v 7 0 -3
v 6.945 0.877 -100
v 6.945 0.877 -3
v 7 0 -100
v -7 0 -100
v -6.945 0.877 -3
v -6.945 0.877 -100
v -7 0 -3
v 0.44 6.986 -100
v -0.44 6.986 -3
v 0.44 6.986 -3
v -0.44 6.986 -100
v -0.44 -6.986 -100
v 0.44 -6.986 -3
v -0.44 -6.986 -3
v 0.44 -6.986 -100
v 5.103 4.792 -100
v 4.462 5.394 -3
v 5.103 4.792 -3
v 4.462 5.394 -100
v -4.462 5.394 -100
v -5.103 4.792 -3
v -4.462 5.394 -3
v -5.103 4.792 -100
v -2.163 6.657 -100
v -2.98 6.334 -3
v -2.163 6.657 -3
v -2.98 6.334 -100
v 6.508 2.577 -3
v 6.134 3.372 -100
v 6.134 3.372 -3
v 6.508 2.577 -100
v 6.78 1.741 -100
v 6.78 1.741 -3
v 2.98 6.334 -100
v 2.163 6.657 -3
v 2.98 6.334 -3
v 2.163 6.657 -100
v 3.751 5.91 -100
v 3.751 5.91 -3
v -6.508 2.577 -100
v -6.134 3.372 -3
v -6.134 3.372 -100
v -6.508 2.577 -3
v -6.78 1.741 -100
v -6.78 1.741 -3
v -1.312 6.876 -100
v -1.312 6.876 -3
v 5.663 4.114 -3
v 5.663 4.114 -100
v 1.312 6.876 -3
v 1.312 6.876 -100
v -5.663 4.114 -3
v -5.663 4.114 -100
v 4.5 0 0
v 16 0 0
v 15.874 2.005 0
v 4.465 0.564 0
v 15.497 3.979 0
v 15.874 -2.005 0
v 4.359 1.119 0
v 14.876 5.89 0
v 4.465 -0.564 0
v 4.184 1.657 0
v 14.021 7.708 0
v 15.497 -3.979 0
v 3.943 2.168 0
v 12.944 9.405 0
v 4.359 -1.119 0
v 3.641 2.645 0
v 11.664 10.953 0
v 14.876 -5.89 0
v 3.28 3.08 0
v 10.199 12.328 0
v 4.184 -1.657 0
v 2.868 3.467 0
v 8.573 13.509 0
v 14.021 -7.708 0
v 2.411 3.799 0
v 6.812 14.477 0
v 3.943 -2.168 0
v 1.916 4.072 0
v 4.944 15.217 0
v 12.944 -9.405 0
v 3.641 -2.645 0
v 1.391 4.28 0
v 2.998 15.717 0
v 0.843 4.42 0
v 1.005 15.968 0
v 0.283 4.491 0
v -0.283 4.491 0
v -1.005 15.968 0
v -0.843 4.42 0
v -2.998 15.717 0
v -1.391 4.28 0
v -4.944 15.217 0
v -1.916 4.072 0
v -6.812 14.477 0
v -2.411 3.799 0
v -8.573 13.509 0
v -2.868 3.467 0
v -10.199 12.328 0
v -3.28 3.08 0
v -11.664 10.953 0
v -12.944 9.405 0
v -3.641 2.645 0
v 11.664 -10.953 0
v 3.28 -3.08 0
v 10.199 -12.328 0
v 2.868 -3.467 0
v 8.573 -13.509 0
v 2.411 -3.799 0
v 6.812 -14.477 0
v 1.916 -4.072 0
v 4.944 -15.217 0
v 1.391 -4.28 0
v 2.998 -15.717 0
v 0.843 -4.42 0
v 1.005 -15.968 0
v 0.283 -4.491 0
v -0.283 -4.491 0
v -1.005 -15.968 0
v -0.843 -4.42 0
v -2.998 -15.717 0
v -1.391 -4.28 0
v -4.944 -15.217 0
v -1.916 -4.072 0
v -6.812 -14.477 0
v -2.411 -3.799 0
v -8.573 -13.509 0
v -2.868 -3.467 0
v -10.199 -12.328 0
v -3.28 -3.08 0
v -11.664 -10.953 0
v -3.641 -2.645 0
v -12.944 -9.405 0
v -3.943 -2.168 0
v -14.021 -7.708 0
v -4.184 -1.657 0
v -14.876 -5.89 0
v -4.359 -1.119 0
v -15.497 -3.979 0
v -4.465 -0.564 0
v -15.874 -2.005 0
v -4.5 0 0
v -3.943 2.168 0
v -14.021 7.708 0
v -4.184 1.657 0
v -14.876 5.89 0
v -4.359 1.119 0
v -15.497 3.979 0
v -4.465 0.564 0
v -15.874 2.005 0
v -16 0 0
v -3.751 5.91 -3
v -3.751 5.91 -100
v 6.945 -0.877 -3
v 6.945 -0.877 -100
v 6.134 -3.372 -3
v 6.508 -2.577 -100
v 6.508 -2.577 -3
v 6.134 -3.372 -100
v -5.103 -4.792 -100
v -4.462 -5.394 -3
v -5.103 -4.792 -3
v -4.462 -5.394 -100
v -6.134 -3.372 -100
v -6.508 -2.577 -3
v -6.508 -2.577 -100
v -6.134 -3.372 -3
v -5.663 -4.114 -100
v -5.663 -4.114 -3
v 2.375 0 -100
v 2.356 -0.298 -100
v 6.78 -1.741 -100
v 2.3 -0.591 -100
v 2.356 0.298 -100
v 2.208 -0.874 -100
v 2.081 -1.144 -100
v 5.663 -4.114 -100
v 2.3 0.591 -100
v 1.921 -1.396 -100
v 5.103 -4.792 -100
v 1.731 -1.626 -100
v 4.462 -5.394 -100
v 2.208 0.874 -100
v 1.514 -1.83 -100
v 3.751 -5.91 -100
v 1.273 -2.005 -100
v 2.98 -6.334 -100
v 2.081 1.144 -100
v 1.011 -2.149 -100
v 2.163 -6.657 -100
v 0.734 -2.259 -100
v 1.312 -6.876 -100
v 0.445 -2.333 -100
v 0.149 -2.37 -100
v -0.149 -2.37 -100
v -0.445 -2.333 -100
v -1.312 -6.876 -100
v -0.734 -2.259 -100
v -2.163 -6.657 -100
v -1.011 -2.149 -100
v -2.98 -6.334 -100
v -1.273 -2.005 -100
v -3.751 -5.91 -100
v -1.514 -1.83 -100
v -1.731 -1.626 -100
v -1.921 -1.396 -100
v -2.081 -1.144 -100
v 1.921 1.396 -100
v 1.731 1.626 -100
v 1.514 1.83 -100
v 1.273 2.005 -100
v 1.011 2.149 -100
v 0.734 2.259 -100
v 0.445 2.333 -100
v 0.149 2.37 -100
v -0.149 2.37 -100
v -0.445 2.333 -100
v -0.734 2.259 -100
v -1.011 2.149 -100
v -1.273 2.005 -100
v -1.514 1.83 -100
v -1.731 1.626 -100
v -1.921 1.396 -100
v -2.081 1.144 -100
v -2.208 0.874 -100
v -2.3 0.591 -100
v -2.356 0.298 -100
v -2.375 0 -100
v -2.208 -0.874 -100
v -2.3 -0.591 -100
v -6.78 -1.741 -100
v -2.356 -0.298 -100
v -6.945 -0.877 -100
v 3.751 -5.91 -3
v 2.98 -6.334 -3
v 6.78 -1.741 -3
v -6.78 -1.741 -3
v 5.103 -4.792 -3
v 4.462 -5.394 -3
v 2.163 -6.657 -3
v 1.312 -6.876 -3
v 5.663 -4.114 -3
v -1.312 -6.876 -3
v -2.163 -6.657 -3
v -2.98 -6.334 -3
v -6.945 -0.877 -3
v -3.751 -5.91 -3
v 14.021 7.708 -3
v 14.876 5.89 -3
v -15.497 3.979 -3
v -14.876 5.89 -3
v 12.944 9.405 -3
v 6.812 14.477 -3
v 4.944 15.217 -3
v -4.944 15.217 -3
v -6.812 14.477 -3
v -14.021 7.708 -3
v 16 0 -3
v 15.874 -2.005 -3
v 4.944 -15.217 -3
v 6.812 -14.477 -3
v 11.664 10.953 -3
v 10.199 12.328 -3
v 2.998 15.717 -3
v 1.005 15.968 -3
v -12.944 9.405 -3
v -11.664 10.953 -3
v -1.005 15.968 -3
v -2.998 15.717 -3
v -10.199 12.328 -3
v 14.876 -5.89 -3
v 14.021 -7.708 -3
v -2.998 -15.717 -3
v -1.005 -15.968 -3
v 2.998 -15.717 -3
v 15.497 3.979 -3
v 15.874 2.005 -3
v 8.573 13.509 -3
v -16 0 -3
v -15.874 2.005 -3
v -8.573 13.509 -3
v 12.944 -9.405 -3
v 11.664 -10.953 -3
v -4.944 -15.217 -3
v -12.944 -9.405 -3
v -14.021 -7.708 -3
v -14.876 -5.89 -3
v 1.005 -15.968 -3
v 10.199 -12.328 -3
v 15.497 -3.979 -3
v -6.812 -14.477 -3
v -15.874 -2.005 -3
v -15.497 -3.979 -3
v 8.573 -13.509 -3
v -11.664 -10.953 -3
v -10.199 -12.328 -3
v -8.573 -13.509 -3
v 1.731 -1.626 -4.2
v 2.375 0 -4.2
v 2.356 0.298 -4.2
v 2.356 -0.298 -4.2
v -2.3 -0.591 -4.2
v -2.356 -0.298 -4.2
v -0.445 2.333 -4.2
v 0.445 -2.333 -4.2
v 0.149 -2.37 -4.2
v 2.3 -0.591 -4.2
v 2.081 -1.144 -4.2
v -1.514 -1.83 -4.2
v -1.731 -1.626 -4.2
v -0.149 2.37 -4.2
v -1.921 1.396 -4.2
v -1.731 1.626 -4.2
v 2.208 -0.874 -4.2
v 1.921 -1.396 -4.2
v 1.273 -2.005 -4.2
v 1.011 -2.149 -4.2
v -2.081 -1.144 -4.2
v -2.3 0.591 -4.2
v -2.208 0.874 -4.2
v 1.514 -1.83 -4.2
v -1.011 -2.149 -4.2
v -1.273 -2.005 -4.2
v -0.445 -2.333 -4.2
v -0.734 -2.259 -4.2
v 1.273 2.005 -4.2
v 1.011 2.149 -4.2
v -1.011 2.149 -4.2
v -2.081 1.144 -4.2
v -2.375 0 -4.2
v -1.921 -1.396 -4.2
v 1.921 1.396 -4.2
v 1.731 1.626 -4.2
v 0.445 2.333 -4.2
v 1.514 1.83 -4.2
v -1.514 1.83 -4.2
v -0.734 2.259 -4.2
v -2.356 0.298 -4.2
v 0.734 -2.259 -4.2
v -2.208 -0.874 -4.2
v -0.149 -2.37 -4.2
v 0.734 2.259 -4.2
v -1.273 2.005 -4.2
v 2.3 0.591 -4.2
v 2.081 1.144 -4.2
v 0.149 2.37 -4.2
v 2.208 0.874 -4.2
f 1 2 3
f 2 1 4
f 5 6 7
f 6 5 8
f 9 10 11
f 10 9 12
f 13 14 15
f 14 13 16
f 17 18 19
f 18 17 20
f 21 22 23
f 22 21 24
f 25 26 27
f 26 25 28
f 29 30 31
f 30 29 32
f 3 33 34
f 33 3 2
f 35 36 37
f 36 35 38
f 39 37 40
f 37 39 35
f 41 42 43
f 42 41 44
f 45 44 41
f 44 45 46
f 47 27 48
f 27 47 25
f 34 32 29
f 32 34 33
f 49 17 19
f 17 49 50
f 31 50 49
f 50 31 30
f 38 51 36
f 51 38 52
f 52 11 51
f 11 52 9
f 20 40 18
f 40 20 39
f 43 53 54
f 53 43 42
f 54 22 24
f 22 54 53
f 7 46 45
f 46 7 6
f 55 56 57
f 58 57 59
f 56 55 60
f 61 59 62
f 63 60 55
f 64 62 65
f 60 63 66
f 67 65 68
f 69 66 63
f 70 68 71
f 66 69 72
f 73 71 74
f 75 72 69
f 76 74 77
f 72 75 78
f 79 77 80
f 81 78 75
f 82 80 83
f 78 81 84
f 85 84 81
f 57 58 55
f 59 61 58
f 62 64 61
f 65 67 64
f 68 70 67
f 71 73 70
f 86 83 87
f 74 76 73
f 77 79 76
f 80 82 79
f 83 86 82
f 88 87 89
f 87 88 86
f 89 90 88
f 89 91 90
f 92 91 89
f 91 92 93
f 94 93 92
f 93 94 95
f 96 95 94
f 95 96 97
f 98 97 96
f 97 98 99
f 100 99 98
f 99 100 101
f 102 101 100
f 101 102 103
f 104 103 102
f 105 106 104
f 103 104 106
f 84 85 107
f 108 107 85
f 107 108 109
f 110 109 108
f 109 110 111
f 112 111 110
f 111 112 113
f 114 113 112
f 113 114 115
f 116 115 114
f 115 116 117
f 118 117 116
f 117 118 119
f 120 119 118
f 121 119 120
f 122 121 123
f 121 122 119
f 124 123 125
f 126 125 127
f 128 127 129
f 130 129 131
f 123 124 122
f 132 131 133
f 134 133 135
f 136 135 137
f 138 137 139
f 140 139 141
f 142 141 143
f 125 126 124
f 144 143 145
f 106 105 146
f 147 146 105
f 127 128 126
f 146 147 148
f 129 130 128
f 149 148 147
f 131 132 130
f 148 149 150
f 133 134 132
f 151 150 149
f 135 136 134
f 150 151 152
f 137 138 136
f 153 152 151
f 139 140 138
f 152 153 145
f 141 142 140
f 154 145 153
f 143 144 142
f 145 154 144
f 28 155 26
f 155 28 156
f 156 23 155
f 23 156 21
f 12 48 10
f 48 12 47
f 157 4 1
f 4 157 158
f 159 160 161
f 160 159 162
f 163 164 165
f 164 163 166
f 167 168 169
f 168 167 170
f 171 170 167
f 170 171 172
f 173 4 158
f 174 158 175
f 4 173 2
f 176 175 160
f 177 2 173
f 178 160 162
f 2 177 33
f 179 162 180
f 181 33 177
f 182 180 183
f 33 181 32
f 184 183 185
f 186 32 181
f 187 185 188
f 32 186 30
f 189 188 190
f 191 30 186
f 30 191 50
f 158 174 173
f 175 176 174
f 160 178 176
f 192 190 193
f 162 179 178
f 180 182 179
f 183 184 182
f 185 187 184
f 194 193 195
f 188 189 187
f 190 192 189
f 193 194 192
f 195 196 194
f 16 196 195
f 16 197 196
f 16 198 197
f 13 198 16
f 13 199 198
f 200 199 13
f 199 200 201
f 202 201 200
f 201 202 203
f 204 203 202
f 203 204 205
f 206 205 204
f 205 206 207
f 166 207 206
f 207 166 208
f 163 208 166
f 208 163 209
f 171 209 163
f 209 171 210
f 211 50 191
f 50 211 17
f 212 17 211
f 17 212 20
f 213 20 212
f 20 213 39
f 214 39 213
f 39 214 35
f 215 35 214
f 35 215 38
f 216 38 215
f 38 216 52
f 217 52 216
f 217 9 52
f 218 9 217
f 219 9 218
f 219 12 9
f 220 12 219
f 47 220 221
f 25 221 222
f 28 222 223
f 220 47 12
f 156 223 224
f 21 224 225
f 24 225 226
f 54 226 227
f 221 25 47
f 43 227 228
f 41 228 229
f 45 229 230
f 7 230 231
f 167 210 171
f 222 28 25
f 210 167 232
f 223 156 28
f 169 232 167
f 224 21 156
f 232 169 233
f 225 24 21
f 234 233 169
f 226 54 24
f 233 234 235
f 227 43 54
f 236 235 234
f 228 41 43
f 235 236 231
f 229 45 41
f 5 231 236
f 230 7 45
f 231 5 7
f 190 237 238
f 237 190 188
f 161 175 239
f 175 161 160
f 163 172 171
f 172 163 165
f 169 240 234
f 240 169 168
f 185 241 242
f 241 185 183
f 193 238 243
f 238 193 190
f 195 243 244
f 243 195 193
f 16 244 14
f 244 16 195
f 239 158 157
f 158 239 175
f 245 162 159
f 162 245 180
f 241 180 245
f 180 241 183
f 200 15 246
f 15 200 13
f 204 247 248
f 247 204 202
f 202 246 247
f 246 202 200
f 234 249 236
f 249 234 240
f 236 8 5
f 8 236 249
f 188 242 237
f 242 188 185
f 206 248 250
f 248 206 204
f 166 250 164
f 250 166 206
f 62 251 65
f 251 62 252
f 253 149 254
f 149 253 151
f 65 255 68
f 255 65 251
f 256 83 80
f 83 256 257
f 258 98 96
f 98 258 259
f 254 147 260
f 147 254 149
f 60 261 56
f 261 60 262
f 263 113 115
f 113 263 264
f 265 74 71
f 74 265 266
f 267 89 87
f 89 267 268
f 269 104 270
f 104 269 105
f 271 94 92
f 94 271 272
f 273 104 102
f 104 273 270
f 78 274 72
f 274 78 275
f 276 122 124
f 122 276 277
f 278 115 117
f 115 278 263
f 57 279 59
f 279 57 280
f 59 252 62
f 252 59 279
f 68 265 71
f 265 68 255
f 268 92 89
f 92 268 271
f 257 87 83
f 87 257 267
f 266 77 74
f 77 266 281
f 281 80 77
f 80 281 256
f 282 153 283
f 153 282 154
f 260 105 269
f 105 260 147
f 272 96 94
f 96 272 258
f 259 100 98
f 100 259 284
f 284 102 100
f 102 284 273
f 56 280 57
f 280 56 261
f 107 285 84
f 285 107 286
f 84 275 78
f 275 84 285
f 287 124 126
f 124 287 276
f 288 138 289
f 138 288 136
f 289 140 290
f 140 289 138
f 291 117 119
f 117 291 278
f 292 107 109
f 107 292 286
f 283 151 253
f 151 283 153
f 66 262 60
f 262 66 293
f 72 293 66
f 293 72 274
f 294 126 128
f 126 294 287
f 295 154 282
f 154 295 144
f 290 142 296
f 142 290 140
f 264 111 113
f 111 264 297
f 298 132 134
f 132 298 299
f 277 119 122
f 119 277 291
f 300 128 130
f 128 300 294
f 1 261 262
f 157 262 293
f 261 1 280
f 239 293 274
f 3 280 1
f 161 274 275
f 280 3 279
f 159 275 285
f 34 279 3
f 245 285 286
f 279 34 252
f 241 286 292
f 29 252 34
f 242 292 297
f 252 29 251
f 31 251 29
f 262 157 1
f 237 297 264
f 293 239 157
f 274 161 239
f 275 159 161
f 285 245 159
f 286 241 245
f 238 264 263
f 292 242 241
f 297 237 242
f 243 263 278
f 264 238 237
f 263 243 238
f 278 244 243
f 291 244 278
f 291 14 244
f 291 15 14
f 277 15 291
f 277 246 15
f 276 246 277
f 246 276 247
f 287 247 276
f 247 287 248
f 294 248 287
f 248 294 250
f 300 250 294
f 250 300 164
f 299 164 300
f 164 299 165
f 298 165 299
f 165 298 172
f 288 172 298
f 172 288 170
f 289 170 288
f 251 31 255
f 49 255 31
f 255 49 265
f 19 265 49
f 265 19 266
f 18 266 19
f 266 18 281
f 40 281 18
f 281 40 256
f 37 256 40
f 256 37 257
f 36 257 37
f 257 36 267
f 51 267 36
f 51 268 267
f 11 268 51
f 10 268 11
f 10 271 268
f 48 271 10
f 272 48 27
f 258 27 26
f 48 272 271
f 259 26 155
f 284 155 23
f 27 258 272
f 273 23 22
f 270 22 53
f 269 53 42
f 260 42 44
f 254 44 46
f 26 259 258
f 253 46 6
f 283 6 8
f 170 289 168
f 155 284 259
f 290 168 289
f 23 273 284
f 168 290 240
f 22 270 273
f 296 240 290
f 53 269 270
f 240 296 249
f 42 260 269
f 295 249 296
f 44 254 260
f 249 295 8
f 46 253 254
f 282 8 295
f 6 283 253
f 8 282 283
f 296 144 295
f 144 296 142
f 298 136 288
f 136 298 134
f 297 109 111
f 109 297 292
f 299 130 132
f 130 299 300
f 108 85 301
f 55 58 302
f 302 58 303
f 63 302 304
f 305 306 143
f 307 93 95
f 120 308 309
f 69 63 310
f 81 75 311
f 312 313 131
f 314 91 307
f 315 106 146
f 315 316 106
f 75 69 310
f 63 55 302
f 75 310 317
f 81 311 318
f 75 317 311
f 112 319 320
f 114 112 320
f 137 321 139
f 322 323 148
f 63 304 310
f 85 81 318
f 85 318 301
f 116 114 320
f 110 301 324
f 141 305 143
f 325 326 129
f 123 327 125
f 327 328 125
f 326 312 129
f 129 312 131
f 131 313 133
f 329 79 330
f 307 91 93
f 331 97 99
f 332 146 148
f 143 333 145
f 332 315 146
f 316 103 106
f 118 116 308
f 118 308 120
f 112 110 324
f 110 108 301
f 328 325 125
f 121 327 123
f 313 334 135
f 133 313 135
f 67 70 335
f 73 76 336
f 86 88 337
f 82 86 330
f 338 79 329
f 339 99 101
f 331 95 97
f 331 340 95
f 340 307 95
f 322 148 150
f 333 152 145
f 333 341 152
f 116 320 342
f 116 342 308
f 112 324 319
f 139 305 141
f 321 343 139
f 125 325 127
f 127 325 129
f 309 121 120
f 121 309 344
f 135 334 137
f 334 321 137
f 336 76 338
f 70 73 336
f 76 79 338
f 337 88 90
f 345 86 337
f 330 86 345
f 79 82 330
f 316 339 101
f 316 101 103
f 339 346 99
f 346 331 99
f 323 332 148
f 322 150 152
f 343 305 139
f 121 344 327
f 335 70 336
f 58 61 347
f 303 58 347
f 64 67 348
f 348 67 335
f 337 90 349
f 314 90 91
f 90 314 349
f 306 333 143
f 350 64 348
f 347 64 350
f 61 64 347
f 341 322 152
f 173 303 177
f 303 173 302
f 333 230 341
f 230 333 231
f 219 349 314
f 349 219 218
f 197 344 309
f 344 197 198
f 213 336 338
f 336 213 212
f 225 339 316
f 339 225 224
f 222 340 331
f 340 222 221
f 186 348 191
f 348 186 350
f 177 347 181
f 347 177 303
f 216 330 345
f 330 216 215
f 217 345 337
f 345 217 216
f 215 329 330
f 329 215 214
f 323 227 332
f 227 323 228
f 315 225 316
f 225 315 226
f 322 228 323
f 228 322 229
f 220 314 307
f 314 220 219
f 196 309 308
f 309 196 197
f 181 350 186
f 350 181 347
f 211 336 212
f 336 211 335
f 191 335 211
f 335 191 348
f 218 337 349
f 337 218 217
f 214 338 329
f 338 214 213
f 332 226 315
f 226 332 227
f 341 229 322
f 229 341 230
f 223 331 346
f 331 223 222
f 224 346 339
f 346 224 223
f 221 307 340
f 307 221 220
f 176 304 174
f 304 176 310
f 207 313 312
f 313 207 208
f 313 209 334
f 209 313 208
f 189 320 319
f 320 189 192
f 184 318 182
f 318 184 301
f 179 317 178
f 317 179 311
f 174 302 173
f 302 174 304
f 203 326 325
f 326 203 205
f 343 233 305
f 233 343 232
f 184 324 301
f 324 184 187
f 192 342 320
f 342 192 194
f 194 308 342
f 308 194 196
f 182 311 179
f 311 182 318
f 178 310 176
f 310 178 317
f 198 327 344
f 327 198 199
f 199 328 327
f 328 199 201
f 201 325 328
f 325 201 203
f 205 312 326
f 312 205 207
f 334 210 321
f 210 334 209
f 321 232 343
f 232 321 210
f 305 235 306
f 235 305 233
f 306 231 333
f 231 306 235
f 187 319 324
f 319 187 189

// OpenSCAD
$fn = 50;


difference() {
	union() {
		translate(v = [0, 0, -100.0000000000]) {
			cylinder(h = 100, r = 7.0000000000);
		}
		translate(v = [0, 0, -3.0000000000]) {
			cylinder(h = 3, r = 16.0000000000);
		}
	}
	union() {
		translate(v = [0, 0, 0]) {
			rotate(a = [0, 0, 0]) {
				difference() {
					union() {
						#translate(v = [0, 0, -100.0000000000]) {
							cylinder(h = 100, r = 2.2500000000);
						}
						#translate(v = [0, 0, -4.2000000000]) {
							cylinder(h = 4.2000000000, r1 = 2.3750000000, r2 = 4.5000000000);
						}
						#translate(v = [0, 0, -100.0000000000]) {
							cylinder(h = 100, r = 2.3750000000);
						}
						#translate(v = [0, 0, -100.0000000000]) {
							cylinder(h = 100, r = 2.2500000000);
						}
					}
					union();
				}
			}
		}
	}
}
